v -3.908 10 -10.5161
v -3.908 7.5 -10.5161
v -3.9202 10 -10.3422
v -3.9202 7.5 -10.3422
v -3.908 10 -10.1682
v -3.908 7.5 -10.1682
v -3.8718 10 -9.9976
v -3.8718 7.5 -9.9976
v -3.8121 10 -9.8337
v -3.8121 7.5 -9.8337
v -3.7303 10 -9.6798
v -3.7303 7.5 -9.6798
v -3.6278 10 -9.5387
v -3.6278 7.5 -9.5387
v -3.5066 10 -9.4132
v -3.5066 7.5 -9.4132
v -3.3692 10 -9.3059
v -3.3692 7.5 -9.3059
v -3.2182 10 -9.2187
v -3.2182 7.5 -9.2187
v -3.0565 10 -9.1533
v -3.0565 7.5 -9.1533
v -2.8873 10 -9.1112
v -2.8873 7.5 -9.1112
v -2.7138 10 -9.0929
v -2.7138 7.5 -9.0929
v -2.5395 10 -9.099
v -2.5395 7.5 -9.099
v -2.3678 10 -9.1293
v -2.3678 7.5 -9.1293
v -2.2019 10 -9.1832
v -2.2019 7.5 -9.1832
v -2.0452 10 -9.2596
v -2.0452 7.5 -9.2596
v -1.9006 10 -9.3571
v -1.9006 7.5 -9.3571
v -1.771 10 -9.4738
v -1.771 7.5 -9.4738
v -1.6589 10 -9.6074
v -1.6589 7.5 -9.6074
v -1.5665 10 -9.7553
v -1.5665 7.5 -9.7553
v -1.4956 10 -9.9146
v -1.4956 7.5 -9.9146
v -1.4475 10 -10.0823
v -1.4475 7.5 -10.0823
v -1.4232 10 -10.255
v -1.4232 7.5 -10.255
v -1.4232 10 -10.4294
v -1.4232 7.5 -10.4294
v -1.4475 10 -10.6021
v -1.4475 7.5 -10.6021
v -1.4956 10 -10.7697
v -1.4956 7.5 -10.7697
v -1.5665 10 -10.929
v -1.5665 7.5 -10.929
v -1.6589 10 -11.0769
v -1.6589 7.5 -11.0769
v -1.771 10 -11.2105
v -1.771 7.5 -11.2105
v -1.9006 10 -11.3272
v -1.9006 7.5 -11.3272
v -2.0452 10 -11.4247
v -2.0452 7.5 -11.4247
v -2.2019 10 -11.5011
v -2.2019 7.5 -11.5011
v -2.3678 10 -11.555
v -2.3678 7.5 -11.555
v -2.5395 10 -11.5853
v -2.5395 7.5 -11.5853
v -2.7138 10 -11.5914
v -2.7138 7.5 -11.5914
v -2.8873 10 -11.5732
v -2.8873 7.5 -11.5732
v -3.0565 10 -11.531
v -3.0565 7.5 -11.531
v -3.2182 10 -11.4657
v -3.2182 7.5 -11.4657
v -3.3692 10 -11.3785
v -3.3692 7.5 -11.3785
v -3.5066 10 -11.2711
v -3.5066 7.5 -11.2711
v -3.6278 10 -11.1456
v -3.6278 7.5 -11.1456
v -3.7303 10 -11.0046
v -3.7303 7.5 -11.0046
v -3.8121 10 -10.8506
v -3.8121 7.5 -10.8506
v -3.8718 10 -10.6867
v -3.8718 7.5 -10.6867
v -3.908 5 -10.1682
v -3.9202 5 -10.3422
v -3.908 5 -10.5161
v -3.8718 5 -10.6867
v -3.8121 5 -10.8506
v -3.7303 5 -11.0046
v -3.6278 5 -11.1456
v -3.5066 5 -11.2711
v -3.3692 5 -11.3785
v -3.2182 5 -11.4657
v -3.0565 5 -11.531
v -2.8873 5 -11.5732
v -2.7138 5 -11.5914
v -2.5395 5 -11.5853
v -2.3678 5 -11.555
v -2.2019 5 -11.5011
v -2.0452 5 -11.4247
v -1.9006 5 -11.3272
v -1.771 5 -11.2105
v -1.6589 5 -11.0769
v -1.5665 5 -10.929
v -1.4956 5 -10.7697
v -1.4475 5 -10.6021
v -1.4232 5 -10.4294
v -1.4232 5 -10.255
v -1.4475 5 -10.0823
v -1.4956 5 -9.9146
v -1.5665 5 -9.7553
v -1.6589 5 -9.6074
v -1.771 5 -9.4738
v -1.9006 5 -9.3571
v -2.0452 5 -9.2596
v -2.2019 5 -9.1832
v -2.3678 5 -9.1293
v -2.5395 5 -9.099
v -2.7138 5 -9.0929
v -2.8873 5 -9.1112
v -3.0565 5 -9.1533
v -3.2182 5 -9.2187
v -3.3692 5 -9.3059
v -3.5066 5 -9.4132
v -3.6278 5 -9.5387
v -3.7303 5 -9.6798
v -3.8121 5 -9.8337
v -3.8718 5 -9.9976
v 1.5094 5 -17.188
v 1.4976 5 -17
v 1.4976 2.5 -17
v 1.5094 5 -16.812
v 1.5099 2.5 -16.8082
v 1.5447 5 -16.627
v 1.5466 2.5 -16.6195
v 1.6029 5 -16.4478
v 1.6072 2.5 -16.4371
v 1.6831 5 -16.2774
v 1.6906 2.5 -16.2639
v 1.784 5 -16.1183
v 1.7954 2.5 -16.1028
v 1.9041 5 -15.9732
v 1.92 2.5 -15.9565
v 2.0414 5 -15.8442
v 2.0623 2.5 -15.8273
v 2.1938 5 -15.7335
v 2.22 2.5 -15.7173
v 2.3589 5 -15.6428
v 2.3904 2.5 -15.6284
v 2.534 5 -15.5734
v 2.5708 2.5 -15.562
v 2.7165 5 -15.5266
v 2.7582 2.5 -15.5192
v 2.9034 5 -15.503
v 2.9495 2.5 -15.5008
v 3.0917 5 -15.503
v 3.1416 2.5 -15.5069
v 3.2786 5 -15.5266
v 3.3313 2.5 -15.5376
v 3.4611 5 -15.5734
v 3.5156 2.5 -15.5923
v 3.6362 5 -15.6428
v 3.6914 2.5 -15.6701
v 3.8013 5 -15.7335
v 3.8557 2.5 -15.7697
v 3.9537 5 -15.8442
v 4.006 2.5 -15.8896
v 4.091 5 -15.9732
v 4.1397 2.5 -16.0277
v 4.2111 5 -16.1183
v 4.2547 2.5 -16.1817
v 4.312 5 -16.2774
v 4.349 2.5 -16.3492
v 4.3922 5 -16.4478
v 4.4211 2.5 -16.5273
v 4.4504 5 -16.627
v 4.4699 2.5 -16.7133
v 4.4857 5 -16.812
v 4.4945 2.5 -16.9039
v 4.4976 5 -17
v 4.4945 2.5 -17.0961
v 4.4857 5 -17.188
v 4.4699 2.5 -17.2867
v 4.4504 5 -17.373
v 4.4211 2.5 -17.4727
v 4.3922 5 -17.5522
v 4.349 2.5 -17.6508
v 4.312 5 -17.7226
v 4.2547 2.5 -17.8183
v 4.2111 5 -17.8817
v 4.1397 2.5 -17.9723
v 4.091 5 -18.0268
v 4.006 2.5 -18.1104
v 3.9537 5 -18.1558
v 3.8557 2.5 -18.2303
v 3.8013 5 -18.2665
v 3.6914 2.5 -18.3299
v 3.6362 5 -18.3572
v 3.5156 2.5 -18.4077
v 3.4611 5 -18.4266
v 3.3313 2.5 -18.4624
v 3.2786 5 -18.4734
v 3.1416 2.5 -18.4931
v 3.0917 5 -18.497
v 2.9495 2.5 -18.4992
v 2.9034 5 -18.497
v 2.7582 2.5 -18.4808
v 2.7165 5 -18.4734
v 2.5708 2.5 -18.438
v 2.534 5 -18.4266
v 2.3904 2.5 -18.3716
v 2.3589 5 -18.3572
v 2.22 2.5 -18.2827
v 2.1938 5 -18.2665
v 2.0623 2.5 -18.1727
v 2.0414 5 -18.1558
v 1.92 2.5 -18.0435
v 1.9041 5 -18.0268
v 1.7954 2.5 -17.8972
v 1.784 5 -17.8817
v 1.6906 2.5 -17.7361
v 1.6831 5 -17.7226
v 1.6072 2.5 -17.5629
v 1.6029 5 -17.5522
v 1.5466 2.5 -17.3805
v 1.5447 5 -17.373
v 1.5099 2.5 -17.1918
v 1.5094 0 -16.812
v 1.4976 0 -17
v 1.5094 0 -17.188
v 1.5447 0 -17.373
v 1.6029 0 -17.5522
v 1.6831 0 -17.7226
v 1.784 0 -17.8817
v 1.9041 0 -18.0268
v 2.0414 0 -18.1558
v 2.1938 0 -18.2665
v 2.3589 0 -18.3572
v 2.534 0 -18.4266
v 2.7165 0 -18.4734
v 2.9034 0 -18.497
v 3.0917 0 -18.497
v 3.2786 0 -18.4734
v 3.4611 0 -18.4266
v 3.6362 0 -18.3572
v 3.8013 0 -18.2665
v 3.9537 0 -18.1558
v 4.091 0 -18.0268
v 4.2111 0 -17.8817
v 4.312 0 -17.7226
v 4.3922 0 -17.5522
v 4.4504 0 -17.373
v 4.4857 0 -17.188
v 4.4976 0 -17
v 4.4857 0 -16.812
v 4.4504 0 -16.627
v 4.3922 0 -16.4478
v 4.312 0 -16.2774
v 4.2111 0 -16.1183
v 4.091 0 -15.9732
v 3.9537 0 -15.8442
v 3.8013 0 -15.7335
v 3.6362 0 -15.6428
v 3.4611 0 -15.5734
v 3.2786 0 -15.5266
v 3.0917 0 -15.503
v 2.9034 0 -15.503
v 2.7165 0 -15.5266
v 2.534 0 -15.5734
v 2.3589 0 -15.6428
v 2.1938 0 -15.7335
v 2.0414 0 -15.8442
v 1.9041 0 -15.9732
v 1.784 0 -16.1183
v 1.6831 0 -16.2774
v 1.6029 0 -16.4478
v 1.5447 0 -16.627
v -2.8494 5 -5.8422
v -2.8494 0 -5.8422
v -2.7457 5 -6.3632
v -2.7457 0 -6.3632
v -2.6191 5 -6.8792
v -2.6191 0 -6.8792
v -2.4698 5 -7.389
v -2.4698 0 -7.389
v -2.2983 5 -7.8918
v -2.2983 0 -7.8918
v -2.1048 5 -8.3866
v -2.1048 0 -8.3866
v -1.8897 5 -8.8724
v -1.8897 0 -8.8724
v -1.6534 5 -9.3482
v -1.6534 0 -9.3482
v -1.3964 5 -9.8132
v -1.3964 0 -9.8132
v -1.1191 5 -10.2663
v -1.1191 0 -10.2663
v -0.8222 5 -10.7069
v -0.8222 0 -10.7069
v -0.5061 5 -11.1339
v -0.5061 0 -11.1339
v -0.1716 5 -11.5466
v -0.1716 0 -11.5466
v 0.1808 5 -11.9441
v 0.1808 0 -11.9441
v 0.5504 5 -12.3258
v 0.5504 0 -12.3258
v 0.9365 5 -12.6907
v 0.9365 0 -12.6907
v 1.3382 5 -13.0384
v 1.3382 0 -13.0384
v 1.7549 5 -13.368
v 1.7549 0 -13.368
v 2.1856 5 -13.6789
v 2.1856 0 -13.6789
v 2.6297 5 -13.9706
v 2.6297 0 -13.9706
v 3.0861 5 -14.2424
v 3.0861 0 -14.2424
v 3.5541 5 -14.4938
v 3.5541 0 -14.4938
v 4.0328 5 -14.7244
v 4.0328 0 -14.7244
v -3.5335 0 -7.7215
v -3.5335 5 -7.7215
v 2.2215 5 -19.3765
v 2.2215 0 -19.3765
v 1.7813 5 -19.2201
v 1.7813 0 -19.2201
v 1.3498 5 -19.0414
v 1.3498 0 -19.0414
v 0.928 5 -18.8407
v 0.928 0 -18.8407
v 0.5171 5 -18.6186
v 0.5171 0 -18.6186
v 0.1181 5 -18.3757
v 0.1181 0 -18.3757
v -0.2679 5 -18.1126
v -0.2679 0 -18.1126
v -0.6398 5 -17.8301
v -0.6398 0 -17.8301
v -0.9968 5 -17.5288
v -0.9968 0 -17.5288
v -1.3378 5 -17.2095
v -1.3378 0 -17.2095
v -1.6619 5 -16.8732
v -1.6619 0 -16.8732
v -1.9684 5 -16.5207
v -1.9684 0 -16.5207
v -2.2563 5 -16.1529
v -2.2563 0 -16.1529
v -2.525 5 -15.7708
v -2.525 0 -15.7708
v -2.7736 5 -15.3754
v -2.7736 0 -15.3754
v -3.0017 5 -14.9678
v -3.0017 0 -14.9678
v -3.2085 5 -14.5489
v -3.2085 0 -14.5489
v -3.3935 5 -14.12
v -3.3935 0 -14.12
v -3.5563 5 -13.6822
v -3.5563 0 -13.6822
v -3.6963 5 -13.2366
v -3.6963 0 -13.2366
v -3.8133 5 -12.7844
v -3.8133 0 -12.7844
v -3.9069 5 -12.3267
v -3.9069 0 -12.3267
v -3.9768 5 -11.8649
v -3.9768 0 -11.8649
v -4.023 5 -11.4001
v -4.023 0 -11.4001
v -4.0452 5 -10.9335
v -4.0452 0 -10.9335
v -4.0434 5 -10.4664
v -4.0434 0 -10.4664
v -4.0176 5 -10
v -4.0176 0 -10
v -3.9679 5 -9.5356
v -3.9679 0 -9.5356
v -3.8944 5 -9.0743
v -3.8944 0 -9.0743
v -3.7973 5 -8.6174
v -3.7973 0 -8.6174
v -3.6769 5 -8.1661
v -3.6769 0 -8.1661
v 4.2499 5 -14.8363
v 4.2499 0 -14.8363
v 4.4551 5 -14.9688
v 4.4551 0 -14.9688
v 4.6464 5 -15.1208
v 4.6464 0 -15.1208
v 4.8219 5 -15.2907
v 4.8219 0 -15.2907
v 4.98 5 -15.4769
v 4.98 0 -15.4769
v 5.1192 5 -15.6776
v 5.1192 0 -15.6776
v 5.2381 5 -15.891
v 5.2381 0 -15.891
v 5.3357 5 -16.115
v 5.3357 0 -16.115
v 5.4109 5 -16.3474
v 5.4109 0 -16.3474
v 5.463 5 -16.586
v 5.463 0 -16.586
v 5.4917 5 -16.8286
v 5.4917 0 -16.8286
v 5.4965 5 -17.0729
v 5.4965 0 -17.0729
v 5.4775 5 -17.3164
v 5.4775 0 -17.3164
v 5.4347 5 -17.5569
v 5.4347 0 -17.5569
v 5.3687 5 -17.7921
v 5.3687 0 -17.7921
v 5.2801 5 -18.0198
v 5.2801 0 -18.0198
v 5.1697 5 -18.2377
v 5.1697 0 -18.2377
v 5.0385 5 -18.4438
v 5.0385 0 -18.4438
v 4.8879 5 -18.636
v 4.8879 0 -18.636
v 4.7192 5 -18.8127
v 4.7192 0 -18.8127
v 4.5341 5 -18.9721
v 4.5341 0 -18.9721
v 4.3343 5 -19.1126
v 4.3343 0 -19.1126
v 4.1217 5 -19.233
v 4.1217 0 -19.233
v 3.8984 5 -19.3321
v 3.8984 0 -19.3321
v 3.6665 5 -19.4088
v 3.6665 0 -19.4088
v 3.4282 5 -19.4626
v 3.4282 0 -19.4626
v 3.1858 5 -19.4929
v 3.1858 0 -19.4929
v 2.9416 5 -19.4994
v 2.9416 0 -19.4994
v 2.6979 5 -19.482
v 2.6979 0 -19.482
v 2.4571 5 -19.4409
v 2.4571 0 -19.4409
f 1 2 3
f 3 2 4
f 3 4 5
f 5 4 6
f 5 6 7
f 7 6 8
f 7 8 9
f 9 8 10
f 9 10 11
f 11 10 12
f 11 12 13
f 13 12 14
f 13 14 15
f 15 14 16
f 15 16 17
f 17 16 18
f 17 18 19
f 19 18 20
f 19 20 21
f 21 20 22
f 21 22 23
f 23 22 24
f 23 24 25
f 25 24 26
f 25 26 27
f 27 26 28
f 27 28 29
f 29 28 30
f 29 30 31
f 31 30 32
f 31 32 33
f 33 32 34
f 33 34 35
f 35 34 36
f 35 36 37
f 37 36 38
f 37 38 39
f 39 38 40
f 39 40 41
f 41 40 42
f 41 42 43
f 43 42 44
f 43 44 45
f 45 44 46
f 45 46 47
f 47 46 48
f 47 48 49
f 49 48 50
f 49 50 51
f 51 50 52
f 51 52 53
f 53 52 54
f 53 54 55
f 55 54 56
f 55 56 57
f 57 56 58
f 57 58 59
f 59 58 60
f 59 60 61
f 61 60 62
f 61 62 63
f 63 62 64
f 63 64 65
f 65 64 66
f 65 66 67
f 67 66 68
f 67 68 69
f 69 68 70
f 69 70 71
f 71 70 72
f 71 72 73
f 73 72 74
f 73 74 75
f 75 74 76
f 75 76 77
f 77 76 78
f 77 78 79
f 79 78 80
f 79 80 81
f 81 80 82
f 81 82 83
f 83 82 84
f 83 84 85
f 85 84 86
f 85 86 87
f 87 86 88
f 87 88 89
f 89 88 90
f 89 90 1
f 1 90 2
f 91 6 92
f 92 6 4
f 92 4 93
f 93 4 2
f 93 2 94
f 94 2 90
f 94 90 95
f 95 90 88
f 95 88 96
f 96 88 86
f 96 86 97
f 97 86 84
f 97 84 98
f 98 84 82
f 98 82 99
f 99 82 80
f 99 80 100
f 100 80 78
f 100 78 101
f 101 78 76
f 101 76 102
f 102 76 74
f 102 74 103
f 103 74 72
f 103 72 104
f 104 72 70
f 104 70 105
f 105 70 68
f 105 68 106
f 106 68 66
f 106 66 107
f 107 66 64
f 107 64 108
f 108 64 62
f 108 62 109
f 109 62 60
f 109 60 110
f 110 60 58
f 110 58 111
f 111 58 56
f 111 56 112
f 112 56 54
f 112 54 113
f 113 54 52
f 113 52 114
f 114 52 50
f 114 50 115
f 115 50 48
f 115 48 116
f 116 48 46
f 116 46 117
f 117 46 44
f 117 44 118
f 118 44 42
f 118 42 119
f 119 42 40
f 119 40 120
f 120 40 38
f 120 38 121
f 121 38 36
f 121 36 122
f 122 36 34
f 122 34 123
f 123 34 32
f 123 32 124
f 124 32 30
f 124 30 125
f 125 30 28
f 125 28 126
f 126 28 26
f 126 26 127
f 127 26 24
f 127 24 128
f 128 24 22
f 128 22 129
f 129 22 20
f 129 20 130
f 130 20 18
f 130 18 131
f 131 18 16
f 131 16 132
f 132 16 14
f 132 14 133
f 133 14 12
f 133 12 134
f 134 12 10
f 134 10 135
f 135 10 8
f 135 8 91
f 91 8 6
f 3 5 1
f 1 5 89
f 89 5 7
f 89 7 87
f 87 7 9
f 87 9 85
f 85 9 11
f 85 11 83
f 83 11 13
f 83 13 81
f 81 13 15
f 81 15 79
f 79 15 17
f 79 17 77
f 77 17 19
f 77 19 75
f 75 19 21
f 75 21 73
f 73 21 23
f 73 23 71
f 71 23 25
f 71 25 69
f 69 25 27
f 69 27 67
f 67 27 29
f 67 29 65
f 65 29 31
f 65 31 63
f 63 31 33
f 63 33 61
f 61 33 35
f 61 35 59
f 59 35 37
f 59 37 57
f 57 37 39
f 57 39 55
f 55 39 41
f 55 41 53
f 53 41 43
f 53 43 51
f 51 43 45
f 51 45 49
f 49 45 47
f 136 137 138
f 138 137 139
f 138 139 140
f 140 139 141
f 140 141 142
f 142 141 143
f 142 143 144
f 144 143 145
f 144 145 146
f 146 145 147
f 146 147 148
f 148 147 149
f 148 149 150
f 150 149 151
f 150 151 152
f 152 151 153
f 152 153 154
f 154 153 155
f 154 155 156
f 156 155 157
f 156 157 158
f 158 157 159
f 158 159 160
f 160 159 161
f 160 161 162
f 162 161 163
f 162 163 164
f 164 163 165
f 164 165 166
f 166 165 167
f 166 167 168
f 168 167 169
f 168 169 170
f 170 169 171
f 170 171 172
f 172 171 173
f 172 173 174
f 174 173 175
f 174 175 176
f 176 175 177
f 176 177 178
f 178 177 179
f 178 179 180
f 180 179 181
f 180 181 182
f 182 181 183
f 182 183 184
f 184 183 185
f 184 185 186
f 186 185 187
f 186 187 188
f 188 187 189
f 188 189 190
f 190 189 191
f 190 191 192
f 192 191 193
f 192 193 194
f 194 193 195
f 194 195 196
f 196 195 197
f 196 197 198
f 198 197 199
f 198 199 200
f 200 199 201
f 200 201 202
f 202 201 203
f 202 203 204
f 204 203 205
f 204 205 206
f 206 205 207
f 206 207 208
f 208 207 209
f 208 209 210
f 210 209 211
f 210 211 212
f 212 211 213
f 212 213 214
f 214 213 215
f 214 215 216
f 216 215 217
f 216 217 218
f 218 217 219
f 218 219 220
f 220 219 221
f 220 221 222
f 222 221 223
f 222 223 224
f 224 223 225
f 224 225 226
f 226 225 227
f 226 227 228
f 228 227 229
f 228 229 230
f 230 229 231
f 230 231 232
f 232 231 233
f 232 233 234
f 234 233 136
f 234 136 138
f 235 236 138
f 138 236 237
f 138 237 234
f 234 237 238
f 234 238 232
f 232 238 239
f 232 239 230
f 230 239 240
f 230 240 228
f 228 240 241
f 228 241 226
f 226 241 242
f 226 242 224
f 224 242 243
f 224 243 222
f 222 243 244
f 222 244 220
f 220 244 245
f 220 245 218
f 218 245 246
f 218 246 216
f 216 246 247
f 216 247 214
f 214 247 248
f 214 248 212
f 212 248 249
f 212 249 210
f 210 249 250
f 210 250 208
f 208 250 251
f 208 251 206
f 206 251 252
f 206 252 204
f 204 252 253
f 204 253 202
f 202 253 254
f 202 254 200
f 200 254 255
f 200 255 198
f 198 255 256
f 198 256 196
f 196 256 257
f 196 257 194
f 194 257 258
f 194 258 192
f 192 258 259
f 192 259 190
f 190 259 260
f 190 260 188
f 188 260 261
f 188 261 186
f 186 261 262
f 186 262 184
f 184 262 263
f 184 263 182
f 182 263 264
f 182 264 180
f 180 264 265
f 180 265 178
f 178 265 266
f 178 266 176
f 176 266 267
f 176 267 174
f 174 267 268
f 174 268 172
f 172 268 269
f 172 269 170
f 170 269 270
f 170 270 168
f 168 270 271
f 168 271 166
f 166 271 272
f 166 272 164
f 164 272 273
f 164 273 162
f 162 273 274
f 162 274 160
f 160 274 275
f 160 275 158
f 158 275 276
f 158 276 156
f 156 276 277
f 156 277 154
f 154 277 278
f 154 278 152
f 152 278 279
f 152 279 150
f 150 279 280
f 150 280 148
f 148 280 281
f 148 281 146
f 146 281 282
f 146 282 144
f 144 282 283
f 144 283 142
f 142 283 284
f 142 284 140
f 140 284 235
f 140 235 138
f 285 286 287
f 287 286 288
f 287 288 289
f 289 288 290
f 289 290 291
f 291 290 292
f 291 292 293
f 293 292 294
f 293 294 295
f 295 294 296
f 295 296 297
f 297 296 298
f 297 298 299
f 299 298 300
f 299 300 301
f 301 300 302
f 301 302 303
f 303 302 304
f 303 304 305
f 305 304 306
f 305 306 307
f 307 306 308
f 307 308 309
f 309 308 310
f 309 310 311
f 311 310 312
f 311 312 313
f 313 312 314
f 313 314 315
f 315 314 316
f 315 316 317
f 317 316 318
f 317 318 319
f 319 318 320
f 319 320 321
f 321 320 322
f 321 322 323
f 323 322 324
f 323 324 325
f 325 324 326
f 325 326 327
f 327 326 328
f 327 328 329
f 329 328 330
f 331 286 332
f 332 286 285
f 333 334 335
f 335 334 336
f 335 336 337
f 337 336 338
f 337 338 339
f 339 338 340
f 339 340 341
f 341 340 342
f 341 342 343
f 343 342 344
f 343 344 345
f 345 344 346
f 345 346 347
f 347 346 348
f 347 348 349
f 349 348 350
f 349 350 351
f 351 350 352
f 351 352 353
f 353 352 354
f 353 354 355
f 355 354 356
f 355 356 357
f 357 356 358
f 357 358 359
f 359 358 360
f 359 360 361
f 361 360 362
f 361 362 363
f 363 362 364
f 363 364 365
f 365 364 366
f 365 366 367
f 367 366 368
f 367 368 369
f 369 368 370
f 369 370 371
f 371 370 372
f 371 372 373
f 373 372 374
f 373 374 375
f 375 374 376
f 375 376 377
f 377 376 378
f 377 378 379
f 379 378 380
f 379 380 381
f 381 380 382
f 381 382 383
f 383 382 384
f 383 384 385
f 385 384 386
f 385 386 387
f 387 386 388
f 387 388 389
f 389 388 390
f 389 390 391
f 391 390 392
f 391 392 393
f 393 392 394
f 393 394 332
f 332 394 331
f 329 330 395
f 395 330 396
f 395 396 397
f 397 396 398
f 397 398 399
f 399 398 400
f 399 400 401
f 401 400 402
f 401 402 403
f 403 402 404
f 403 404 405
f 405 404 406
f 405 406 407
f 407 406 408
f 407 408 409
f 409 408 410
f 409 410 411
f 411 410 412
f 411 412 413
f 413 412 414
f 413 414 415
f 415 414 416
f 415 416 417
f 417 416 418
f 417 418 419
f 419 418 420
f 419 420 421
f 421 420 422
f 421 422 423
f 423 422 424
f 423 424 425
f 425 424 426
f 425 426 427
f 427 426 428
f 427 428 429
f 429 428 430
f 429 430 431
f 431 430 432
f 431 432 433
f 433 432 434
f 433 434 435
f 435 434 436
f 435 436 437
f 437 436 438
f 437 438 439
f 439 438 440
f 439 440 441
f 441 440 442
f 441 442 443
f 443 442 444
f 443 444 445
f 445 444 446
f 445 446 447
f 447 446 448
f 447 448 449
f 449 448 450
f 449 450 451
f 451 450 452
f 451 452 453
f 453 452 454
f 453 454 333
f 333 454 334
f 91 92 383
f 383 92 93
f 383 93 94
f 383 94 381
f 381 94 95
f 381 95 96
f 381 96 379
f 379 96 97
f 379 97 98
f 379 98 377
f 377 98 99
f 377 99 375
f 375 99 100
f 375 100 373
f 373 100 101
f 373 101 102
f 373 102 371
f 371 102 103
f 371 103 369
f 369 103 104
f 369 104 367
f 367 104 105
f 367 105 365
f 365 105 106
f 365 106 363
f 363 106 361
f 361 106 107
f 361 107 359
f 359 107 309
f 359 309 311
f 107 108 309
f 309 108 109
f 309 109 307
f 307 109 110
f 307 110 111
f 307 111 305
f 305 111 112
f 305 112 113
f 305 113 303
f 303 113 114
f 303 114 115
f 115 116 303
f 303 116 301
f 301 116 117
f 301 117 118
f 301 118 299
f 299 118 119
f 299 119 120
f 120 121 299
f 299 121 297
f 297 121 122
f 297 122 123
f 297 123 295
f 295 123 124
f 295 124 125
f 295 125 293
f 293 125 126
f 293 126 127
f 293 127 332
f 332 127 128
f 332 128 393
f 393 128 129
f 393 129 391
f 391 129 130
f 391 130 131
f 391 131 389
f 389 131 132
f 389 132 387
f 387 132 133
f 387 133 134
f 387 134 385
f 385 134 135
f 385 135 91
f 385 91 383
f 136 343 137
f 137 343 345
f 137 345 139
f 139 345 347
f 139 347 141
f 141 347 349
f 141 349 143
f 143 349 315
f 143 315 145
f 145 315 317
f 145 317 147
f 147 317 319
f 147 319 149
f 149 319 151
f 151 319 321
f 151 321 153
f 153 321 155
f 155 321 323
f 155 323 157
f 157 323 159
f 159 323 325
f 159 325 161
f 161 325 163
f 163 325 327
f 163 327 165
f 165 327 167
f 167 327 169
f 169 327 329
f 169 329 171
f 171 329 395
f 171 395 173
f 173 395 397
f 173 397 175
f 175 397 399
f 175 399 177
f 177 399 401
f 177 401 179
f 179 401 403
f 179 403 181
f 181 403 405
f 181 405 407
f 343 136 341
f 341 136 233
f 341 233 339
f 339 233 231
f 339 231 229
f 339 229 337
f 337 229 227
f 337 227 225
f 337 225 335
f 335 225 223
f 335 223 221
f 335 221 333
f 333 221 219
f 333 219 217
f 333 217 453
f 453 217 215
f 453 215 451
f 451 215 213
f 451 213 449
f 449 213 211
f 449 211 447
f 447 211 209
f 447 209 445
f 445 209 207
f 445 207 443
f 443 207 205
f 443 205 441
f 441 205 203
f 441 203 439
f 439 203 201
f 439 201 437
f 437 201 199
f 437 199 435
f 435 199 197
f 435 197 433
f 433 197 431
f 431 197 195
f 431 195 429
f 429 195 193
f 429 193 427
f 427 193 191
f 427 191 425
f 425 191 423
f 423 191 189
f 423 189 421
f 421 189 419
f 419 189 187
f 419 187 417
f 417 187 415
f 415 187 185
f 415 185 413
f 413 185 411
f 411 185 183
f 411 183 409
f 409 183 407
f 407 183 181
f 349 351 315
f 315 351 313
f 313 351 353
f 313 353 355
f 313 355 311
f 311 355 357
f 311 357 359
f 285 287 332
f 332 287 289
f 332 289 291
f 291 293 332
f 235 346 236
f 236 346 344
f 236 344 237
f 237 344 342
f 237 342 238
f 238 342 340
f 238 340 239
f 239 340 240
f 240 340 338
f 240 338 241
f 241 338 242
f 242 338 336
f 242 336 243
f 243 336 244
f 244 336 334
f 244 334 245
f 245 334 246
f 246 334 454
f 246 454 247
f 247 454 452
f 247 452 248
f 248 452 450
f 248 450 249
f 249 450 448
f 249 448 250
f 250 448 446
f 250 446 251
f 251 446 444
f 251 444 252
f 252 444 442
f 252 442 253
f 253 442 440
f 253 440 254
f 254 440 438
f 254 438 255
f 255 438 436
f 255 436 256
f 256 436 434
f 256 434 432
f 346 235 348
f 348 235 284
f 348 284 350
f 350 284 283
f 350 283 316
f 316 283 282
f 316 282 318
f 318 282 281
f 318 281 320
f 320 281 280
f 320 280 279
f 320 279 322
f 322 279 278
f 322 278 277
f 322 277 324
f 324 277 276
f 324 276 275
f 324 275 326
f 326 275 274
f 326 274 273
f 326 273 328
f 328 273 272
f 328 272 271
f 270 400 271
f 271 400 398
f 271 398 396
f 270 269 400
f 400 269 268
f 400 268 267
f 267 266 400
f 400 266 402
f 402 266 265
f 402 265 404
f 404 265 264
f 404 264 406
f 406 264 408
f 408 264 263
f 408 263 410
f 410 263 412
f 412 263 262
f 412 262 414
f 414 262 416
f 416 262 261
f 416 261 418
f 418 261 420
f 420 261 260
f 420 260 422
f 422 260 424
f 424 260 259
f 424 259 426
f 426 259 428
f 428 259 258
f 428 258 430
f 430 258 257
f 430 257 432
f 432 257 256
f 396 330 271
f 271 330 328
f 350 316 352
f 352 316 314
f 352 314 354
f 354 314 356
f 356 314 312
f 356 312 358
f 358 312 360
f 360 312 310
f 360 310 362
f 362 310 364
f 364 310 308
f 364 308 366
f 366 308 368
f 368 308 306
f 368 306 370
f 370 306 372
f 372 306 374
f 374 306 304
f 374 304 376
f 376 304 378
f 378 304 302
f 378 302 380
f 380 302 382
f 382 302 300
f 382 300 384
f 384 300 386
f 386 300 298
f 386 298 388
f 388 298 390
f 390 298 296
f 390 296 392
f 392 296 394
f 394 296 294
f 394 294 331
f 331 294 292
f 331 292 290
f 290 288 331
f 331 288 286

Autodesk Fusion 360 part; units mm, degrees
sketch "ratchet scketch & pawl" plane through (0, 0, 0) normal (0, 1, 0) x (1, 0, 0)
  circle A0 centre (0, 0) radius 7.75 construction
  circle A1 centre (0, 0) radius 6.5 construction
  line L0 (0, 0) -> (1.3458, 7.6323) construction
  line L1 (0, 0) -> (-2.8494, 5.8422) construction
  arc A2 (1.3458, 7.6323) -> (-2.8494, 5.8422) centre (0.5379, 3.7147) ccw construction
  line L2 (0, 0) -> (6.5, 0) construction
  line L3 (0, 0) -> (4.4082, 25) construction
  circle A3 centre (2.9976, 17) radius 1.5
  circle A4 centre (2.9976, 17) radius 2.5
  line L4 (-2.8494, 5.8422) -> (-0.2045, 20.8422) construction
  line L5 (-2.8494, 5.8422) -> (-3.5335, 7.7215)
  arc A5 (4.0328, 14.7244) -> (-2.8494, 5.8422) centre (9.0259, 3.7482) ccw
  arc A6 (2.2215, 19.3765) -> (-3.5335, 7.7215) centre (5.0435, 10.7347) ccw
  circle A7 centre (-2.6702, 10.3422) radius 1.25
  dimension "d28" = 13
  dimension "d29" = 15.5
  dimension "d30" = 80
  dimension "d31" = 36
  dimension "d32" = 4
  dimension "d33" = 25
  dimension "d34" = 3
  dimension "d35" = 5
  dimension "d36" = 15
  dimension "d37" = 2
  dimension "d40" = 30
  dimension "d43" = 9.0909
  dimension "d44" = 17
  dimension "d45" = 2.5
  dimension "d46" = 4.5
  dimension "d47" = 7.7237
extrude "Extrude1" add sketch "ratchet scketch & pawl" along normal blind 5 contours A4 | A4 L5 A5 A6 | A7 makes body 1
move_body "Move1" bodies 1 to x (0, 0, 1) y (0, 1, 0) z (-1, 0, 0) at (-3.7668, 0, 14.8212)
extrude "Extrude2" add sketch "ratchet scketch & pawl" along normal blind 5 separate body contours A4 | A4 L5 A5 A6 | A7 makes body 2
extrude "Extrude3" add sketch "ratchet scketch & pawl" along normal blind 5 from surface at 5 contours A7 bodies 2
delete_body "RemoveBody1" bodies 1
equation "d29 = ( 7.75 * 2 ) * 1 mm"
